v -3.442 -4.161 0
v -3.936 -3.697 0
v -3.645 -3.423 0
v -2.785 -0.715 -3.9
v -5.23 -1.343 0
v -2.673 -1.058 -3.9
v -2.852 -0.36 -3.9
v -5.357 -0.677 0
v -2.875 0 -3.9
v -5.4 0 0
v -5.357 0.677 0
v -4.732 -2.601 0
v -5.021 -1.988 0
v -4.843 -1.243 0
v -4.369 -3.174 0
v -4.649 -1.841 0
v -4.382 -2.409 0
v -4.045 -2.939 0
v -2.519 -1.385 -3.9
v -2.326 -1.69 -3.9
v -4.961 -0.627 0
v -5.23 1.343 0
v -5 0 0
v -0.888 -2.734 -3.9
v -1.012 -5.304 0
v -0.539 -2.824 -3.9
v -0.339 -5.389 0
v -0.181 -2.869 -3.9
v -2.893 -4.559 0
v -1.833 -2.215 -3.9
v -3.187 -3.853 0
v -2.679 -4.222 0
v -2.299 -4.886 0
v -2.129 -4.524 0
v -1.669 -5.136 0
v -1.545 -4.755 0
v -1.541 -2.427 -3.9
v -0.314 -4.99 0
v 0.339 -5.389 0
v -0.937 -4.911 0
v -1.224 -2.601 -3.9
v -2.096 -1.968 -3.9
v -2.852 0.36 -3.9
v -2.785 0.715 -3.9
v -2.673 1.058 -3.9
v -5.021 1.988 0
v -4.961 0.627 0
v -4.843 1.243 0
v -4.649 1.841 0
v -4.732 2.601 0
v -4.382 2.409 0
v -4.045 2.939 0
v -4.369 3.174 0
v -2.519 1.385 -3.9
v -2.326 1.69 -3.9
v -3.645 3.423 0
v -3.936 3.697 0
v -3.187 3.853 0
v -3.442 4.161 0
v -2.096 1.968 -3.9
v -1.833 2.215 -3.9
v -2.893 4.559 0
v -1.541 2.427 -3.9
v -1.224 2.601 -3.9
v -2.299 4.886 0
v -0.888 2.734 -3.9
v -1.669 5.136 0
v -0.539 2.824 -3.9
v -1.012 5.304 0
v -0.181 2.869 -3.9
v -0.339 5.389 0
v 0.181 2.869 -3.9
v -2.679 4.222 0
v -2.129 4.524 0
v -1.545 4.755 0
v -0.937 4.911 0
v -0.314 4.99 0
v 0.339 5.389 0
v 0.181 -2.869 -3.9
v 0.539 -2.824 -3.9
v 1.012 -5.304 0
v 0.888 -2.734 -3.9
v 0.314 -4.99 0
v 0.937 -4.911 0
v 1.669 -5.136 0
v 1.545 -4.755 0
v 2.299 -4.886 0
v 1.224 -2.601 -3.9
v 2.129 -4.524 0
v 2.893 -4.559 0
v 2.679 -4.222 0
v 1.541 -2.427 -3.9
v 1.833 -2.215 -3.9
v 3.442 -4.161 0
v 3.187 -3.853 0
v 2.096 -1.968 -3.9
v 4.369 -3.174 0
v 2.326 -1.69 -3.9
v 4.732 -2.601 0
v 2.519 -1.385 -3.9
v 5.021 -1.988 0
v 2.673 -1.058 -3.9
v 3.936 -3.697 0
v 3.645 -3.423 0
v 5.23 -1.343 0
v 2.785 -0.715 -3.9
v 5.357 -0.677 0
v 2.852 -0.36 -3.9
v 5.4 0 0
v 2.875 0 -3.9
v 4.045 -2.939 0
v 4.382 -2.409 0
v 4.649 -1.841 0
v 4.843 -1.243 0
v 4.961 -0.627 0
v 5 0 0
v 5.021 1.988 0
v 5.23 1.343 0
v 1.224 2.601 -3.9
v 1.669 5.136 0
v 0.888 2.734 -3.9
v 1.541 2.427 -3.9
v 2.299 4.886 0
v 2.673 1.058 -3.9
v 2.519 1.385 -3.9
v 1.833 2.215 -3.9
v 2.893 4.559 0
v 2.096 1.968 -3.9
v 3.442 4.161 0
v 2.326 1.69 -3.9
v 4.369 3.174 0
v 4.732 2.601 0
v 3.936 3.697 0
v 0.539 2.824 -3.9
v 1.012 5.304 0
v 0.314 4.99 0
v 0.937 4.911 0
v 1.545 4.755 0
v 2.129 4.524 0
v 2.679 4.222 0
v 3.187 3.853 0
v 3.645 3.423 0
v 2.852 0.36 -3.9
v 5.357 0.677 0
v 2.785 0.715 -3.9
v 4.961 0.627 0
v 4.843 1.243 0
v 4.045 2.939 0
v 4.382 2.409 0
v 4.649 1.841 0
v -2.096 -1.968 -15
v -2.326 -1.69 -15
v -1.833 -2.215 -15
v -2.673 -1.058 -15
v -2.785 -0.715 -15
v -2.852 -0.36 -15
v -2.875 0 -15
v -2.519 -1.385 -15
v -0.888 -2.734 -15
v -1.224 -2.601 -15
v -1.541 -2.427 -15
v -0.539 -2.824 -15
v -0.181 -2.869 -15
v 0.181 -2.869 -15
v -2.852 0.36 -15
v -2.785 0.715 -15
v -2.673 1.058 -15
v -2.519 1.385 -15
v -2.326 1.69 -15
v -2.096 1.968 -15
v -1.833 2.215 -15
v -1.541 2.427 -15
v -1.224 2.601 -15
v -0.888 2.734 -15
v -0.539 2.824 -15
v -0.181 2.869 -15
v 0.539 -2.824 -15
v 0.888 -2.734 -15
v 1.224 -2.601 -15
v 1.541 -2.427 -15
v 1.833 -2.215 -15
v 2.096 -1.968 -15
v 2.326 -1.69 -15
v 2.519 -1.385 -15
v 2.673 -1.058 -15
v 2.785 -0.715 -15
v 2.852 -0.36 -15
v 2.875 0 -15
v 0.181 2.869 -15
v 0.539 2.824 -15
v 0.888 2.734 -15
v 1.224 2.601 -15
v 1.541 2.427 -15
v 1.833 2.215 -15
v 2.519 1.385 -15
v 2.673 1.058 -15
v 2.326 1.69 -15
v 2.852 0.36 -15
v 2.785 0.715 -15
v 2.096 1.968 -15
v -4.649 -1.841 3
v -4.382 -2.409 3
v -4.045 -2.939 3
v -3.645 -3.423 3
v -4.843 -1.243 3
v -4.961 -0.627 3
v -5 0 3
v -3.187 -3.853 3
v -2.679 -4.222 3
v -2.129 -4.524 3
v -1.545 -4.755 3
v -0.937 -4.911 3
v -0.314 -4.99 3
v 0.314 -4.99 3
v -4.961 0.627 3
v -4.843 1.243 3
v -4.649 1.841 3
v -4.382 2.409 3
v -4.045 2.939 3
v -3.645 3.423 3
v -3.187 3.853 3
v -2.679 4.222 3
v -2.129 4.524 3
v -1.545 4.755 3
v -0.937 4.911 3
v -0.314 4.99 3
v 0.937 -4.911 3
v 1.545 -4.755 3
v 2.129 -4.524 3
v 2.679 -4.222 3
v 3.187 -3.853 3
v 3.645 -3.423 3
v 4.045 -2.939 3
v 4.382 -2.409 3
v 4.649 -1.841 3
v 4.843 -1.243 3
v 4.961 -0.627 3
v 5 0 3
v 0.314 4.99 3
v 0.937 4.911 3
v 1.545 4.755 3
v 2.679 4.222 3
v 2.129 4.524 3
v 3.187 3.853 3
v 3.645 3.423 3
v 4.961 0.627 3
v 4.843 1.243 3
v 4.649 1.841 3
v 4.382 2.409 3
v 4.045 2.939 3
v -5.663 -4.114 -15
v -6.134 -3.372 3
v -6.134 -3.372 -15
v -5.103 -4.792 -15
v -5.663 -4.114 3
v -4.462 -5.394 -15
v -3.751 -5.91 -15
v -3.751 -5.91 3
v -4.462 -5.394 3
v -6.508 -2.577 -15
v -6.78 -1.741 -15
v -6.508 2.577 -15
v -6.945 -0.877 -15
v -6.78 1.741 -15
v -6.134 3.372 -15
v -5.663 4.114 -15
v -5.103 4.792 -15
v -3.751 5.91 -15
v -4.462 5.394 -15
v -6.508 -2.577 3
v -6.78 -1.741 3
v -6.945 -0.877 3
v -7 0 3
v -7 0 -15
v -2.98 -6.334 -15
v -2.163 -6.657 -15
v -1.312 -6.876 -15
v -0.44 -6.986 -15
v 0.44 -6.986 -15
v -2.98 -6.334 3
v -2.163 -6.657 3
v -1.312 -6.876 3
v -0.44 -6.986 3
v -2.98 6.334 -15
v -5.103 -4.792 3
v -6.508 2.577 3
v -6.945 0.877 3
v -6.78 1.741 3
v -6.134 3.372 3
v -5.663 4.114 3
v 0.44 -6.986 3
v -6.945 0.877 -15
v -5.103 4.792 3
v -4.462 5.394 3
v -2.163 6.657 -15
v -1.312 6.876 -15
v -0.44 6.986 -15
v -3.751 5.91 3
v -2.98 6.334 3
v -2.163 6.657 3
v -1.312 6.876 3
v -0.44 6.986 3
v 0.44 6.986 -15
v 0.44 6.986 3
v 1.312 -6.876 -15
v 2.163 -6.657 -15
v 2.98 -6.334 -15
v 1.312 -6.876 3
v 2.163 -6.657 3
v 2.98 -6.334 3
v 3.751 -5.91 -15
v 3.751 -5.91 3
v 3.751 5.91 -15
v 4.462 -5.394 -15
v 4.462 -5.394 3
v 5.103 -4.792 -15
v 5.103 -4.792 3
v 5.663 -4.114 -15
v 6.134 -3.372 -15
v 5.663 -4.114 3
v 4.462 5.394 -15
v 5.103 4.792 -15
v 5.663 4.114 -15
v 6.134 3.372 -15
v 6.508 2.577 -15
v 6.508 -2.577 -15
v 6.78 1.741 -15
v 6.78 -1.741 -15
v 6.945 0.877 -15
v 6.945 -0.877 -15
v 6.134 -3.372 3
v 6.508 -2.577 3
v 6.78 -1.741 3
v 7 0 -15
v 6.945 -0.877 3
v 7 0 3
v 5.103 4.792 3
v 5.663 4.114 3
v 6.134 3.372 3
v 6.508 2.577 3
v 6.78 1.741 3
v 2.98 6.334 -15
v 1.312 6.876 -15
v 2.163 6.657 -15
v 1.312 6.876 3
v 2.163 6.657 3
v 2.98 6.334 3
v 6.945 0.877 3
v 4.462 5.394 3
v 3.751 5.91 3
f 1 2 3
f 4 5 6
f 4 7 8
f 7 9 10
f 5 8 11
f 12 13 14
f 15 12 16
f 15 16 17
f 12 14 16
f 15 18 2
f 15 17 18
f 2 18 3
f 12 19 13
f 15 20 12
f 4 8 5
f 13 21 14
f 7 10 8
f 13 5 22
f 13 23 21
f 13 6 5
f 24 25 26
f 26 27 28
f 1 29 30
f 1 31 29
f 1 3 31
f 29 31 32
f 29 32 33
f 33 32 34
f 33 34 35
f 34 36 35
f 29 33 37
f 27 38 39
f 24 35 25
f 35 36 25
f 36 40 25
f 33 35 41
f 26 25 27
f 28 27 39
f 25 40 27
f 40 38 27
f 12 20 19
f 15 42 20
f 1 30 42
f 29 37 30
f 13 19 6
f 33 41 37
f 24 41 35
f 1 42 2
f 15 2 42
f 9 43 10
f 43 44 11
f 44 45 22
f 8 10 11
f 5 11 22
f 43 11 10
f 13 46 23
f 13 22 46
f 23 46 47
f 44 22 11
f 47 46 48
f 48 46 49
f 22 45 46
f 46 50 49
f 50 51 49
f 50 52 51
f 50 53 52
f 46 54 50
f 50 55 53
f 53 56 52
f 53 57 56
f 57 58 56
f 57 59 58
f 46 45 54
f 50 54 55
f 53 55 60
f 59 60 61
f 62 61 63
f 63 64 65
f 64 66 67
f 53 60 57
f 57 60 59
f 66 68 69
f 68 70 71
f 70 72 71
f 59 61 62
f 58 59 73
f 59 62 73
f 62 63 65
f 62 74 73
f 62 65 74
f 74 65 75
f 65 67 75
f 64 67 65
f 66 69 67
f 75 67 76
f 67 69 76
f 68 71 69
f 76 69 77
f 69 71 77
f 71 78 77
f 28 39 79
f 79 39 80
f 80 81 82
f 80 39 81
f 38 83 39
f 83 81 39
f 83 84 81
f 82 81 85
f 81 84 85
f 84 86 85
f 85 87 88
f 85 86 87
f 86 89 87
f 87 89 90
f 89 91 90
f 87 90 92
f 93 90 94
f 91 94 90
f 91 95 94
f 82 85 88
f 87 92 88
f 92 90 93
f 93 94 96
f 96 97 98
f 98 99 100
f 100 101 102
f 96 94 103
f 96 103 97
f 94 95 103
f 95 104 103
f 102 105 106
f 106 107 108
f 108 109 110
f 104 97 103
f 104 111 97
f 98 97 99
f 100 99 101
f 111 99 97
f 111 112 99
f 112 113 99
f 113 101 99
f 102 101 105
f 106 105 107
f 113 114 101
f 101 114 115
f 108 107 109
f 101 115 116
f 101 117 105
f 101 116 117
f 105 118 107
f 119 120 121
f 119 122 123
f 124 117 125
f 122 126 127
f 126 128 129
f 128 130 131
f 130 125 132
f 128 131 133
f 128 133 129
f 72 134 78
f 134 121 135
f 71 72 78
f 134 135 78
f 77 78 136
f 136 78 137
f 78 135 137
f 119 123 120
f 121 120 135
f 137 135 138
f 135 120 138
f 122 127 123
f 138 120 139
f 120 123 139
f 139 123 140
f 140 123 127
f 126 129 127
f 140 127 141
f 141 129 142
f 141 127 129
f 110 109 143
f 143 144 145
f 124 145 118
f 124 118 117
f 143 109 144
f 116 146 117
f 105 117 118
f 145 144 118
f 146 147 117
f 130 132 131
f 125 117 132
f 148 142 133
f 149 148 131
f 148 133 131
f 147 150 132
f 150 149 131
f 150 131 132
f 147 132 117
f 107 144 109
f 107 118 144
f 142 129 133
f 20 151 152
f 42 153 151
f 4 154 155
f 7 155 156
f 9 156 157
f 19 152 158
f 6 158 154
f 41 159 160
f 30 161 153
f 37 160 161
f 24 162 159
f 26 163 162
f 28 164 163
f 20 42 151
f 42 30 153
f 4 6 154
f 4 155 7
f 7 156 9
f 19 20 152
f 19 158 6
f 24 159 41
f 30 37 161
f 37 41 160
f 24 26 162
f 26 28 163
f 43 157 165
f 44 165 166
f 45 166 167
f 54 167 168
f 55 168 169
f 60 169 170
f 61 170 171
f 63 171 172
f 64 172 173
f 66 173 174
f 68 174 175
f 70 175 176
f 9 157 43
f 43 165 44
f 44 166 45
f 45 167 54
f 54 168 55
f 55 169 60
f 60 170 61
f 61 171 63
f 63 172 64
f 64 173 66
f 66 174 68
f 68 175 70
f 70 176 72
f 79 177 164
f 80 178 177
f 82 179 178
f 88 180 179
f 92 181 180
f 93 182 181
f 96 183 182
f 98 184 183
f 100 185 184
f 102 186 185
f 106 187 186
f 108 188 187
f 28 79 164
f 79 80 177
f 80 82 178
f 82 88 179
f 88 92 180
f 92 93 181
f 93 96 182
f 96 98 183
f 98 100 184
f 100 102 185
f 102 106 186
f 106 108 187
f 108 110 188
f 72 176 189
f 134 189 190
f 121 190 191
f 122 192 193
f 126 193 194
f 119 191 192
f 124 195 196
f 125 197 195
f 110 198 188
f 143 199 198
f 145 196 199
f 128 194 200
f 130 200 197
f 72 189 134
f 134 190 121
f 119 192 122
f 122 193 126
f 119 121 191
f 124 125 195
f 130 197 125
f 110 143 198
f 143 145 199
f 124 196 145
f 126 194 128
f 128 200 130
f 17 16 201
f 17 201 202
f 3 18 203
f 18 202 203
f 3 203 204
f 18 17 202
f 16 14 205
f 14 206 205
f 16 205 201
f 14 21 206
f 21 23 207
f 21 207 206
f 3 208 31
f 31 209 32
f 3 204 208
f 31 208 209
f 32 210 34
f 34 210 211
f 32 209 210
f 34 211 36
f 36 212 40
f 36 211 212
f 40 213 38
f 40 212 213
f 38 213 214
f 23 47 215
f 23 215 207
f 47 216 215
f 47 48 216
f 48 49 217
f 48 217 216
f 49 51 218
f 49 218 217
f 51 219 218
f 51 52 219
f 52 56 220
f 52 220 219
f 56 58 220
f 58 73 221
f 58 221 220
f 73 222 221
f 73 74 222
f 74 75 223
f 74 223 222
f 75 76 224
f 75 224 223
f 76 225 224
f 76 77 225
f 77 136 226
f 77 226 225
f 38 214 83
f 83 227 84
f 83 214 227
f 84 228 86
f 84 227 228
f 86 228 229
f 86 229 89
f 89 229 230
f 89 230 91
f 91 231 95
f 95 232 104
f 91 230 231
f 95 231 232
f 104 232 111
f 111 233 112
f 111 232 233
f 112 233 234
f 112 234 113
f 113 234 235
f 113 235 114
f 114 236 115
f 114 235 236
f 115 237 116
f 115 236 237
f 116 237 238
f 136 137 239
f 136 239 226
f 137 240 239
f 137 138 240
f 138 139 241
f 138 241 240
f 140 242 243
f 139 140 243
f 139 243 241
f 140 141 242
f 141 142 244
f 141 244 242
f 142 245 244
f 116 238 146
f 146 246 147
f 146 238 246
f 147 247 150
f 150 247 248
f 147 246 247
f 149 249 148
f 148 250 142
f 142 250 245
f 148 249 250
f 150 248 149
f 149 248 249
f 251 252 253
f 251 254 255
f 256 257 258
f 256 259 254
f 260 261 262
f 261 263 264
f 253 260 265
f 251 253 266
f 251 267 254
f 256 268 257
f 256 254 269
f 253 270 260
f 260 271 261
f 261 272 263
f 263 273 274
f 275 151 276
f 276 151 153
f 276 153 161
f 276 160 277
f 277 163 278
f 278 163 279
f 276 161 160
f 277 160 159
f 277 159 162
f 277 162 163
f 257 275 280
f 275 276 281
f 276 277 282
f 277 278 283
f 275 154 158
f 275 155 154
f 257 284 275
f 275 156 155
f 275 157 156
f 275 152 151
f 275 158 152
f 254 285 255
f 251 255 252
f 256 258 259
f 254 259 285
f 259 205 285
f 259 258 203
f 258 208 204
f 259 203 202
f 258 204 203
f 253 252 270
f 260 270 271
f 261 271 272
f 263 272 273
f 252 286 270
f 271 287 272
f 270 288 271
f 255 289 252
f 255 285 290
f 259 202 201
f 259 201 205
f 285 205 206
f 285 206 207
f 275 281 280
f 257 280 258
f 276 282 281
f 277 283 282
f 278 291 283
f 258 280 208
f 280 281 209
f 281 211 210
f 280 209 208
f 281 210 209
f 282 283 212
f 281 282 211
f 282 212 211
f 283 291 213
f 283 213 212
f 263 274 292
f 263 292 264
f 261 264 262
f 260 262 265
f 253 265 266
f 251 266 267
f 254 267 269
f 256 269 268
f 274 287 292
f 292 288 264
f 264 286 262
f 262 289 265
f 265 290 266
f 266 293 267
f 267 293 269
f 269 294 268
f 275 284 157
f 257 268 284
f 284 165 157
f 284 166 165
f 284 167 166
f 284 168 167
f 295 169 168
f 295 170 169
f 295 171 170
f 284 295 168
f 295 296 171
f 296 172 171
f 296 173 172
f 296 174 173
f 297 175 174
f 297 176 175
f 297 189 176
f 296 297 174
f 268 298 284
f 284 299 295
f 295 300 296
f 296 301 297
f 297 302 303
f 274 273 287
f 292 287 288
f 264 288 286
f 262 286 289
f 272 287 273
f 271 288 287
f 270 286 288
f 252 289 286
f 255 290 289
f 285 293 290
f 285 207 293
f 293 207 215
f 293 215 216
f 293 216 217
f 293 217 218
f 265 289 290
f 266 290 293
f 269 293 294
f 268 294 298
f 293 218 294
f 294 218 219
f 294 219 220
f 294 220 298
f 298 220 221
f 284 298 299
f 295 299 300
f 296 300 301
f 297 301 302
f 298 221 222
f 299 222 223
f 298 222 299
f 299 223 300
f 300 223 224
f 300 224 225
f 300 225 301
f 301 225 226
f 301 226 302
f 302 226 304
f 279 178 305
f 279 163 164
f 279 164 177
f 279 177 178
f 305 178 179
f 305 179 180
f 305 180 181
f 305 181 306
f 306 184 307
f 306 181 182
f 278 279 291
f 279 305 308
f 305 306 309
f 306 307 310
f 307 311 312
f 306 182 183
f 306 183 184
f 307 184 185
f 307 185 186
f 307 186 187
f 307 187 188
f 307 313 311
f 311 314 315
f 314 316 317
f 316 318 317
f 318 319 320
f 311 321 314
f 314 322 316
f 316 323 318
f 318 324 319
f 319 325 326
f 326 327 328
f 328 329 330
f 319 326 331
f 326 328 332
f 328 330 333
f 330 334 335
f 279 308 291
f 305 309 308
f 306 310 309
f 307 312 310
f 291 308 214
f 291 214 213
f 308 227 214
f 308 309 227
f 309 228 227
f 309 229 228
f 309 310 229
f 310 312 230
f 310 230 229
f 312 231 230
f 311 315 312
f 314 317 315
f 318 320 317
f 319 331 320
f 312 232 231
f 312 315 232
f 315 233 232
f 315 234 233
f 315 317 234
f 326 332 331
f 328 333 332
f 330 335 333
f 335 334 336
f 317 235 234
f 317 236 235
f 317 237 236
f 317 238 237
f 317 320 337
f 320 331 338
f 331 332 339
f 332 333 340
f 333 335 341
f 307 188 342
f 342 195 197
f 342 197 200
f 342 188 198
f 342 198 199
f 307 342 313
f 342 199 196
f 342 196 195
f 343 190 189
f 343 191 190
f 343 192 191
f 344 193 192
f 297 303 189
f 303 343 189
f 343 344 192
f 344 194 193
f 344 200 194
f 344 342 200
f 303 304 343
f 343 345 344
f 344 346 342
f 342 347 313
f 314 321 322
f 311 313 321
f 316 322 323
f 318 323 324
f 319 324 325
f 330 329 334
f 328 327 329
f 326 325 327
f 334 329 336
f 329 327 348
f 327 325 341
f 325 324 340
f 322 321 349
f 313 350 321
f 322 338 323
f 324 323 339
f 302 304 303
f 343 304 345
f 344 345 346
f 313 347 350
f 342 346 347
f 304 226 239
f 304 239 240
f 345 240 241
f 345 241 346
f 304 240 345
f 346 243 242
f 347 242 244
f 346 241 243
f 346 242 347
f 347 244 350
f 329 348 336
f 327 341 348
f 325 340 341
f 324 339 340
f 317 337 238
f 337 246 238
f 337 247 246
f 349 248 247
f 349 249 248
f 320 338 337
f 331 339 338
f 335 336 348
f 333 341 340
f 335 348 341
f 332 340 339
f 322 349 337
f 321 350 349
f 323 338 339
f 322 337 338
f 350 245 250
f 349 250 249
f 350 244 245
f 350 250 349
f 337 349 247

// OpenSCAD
$fn = 50;

difference() {
	union() {
		translate(v = [0, 0, -15.0]) {
			cylinder(h = 18, r = 7.0);
		}
	}
	union() {
		translate(v = [0, 0, 0]) {
			rotate(a = [0, 0, 0]) {
				difference() {
					union() {
						translate(v = [0, 0, -18.0]) {
							cylinder(h = 18, r = 2.6);
						}
						translate(v = [0, 0, -3.9]) {
							cylinder(h = 3.9, r1 = 2.875, r2 = 5.4);
						}
						translate(v = [0, 0, -18.0]) {
							cylinder(h = 18, r = 2.875);
						}
						translate(v = [0, 0, -18.0]) {
							cylinder(h = 18, r = 2.6);
						}
					}
					union();
				}
			}
		}
		#cylinder(h = 3, r = 5.0);
	}
}
